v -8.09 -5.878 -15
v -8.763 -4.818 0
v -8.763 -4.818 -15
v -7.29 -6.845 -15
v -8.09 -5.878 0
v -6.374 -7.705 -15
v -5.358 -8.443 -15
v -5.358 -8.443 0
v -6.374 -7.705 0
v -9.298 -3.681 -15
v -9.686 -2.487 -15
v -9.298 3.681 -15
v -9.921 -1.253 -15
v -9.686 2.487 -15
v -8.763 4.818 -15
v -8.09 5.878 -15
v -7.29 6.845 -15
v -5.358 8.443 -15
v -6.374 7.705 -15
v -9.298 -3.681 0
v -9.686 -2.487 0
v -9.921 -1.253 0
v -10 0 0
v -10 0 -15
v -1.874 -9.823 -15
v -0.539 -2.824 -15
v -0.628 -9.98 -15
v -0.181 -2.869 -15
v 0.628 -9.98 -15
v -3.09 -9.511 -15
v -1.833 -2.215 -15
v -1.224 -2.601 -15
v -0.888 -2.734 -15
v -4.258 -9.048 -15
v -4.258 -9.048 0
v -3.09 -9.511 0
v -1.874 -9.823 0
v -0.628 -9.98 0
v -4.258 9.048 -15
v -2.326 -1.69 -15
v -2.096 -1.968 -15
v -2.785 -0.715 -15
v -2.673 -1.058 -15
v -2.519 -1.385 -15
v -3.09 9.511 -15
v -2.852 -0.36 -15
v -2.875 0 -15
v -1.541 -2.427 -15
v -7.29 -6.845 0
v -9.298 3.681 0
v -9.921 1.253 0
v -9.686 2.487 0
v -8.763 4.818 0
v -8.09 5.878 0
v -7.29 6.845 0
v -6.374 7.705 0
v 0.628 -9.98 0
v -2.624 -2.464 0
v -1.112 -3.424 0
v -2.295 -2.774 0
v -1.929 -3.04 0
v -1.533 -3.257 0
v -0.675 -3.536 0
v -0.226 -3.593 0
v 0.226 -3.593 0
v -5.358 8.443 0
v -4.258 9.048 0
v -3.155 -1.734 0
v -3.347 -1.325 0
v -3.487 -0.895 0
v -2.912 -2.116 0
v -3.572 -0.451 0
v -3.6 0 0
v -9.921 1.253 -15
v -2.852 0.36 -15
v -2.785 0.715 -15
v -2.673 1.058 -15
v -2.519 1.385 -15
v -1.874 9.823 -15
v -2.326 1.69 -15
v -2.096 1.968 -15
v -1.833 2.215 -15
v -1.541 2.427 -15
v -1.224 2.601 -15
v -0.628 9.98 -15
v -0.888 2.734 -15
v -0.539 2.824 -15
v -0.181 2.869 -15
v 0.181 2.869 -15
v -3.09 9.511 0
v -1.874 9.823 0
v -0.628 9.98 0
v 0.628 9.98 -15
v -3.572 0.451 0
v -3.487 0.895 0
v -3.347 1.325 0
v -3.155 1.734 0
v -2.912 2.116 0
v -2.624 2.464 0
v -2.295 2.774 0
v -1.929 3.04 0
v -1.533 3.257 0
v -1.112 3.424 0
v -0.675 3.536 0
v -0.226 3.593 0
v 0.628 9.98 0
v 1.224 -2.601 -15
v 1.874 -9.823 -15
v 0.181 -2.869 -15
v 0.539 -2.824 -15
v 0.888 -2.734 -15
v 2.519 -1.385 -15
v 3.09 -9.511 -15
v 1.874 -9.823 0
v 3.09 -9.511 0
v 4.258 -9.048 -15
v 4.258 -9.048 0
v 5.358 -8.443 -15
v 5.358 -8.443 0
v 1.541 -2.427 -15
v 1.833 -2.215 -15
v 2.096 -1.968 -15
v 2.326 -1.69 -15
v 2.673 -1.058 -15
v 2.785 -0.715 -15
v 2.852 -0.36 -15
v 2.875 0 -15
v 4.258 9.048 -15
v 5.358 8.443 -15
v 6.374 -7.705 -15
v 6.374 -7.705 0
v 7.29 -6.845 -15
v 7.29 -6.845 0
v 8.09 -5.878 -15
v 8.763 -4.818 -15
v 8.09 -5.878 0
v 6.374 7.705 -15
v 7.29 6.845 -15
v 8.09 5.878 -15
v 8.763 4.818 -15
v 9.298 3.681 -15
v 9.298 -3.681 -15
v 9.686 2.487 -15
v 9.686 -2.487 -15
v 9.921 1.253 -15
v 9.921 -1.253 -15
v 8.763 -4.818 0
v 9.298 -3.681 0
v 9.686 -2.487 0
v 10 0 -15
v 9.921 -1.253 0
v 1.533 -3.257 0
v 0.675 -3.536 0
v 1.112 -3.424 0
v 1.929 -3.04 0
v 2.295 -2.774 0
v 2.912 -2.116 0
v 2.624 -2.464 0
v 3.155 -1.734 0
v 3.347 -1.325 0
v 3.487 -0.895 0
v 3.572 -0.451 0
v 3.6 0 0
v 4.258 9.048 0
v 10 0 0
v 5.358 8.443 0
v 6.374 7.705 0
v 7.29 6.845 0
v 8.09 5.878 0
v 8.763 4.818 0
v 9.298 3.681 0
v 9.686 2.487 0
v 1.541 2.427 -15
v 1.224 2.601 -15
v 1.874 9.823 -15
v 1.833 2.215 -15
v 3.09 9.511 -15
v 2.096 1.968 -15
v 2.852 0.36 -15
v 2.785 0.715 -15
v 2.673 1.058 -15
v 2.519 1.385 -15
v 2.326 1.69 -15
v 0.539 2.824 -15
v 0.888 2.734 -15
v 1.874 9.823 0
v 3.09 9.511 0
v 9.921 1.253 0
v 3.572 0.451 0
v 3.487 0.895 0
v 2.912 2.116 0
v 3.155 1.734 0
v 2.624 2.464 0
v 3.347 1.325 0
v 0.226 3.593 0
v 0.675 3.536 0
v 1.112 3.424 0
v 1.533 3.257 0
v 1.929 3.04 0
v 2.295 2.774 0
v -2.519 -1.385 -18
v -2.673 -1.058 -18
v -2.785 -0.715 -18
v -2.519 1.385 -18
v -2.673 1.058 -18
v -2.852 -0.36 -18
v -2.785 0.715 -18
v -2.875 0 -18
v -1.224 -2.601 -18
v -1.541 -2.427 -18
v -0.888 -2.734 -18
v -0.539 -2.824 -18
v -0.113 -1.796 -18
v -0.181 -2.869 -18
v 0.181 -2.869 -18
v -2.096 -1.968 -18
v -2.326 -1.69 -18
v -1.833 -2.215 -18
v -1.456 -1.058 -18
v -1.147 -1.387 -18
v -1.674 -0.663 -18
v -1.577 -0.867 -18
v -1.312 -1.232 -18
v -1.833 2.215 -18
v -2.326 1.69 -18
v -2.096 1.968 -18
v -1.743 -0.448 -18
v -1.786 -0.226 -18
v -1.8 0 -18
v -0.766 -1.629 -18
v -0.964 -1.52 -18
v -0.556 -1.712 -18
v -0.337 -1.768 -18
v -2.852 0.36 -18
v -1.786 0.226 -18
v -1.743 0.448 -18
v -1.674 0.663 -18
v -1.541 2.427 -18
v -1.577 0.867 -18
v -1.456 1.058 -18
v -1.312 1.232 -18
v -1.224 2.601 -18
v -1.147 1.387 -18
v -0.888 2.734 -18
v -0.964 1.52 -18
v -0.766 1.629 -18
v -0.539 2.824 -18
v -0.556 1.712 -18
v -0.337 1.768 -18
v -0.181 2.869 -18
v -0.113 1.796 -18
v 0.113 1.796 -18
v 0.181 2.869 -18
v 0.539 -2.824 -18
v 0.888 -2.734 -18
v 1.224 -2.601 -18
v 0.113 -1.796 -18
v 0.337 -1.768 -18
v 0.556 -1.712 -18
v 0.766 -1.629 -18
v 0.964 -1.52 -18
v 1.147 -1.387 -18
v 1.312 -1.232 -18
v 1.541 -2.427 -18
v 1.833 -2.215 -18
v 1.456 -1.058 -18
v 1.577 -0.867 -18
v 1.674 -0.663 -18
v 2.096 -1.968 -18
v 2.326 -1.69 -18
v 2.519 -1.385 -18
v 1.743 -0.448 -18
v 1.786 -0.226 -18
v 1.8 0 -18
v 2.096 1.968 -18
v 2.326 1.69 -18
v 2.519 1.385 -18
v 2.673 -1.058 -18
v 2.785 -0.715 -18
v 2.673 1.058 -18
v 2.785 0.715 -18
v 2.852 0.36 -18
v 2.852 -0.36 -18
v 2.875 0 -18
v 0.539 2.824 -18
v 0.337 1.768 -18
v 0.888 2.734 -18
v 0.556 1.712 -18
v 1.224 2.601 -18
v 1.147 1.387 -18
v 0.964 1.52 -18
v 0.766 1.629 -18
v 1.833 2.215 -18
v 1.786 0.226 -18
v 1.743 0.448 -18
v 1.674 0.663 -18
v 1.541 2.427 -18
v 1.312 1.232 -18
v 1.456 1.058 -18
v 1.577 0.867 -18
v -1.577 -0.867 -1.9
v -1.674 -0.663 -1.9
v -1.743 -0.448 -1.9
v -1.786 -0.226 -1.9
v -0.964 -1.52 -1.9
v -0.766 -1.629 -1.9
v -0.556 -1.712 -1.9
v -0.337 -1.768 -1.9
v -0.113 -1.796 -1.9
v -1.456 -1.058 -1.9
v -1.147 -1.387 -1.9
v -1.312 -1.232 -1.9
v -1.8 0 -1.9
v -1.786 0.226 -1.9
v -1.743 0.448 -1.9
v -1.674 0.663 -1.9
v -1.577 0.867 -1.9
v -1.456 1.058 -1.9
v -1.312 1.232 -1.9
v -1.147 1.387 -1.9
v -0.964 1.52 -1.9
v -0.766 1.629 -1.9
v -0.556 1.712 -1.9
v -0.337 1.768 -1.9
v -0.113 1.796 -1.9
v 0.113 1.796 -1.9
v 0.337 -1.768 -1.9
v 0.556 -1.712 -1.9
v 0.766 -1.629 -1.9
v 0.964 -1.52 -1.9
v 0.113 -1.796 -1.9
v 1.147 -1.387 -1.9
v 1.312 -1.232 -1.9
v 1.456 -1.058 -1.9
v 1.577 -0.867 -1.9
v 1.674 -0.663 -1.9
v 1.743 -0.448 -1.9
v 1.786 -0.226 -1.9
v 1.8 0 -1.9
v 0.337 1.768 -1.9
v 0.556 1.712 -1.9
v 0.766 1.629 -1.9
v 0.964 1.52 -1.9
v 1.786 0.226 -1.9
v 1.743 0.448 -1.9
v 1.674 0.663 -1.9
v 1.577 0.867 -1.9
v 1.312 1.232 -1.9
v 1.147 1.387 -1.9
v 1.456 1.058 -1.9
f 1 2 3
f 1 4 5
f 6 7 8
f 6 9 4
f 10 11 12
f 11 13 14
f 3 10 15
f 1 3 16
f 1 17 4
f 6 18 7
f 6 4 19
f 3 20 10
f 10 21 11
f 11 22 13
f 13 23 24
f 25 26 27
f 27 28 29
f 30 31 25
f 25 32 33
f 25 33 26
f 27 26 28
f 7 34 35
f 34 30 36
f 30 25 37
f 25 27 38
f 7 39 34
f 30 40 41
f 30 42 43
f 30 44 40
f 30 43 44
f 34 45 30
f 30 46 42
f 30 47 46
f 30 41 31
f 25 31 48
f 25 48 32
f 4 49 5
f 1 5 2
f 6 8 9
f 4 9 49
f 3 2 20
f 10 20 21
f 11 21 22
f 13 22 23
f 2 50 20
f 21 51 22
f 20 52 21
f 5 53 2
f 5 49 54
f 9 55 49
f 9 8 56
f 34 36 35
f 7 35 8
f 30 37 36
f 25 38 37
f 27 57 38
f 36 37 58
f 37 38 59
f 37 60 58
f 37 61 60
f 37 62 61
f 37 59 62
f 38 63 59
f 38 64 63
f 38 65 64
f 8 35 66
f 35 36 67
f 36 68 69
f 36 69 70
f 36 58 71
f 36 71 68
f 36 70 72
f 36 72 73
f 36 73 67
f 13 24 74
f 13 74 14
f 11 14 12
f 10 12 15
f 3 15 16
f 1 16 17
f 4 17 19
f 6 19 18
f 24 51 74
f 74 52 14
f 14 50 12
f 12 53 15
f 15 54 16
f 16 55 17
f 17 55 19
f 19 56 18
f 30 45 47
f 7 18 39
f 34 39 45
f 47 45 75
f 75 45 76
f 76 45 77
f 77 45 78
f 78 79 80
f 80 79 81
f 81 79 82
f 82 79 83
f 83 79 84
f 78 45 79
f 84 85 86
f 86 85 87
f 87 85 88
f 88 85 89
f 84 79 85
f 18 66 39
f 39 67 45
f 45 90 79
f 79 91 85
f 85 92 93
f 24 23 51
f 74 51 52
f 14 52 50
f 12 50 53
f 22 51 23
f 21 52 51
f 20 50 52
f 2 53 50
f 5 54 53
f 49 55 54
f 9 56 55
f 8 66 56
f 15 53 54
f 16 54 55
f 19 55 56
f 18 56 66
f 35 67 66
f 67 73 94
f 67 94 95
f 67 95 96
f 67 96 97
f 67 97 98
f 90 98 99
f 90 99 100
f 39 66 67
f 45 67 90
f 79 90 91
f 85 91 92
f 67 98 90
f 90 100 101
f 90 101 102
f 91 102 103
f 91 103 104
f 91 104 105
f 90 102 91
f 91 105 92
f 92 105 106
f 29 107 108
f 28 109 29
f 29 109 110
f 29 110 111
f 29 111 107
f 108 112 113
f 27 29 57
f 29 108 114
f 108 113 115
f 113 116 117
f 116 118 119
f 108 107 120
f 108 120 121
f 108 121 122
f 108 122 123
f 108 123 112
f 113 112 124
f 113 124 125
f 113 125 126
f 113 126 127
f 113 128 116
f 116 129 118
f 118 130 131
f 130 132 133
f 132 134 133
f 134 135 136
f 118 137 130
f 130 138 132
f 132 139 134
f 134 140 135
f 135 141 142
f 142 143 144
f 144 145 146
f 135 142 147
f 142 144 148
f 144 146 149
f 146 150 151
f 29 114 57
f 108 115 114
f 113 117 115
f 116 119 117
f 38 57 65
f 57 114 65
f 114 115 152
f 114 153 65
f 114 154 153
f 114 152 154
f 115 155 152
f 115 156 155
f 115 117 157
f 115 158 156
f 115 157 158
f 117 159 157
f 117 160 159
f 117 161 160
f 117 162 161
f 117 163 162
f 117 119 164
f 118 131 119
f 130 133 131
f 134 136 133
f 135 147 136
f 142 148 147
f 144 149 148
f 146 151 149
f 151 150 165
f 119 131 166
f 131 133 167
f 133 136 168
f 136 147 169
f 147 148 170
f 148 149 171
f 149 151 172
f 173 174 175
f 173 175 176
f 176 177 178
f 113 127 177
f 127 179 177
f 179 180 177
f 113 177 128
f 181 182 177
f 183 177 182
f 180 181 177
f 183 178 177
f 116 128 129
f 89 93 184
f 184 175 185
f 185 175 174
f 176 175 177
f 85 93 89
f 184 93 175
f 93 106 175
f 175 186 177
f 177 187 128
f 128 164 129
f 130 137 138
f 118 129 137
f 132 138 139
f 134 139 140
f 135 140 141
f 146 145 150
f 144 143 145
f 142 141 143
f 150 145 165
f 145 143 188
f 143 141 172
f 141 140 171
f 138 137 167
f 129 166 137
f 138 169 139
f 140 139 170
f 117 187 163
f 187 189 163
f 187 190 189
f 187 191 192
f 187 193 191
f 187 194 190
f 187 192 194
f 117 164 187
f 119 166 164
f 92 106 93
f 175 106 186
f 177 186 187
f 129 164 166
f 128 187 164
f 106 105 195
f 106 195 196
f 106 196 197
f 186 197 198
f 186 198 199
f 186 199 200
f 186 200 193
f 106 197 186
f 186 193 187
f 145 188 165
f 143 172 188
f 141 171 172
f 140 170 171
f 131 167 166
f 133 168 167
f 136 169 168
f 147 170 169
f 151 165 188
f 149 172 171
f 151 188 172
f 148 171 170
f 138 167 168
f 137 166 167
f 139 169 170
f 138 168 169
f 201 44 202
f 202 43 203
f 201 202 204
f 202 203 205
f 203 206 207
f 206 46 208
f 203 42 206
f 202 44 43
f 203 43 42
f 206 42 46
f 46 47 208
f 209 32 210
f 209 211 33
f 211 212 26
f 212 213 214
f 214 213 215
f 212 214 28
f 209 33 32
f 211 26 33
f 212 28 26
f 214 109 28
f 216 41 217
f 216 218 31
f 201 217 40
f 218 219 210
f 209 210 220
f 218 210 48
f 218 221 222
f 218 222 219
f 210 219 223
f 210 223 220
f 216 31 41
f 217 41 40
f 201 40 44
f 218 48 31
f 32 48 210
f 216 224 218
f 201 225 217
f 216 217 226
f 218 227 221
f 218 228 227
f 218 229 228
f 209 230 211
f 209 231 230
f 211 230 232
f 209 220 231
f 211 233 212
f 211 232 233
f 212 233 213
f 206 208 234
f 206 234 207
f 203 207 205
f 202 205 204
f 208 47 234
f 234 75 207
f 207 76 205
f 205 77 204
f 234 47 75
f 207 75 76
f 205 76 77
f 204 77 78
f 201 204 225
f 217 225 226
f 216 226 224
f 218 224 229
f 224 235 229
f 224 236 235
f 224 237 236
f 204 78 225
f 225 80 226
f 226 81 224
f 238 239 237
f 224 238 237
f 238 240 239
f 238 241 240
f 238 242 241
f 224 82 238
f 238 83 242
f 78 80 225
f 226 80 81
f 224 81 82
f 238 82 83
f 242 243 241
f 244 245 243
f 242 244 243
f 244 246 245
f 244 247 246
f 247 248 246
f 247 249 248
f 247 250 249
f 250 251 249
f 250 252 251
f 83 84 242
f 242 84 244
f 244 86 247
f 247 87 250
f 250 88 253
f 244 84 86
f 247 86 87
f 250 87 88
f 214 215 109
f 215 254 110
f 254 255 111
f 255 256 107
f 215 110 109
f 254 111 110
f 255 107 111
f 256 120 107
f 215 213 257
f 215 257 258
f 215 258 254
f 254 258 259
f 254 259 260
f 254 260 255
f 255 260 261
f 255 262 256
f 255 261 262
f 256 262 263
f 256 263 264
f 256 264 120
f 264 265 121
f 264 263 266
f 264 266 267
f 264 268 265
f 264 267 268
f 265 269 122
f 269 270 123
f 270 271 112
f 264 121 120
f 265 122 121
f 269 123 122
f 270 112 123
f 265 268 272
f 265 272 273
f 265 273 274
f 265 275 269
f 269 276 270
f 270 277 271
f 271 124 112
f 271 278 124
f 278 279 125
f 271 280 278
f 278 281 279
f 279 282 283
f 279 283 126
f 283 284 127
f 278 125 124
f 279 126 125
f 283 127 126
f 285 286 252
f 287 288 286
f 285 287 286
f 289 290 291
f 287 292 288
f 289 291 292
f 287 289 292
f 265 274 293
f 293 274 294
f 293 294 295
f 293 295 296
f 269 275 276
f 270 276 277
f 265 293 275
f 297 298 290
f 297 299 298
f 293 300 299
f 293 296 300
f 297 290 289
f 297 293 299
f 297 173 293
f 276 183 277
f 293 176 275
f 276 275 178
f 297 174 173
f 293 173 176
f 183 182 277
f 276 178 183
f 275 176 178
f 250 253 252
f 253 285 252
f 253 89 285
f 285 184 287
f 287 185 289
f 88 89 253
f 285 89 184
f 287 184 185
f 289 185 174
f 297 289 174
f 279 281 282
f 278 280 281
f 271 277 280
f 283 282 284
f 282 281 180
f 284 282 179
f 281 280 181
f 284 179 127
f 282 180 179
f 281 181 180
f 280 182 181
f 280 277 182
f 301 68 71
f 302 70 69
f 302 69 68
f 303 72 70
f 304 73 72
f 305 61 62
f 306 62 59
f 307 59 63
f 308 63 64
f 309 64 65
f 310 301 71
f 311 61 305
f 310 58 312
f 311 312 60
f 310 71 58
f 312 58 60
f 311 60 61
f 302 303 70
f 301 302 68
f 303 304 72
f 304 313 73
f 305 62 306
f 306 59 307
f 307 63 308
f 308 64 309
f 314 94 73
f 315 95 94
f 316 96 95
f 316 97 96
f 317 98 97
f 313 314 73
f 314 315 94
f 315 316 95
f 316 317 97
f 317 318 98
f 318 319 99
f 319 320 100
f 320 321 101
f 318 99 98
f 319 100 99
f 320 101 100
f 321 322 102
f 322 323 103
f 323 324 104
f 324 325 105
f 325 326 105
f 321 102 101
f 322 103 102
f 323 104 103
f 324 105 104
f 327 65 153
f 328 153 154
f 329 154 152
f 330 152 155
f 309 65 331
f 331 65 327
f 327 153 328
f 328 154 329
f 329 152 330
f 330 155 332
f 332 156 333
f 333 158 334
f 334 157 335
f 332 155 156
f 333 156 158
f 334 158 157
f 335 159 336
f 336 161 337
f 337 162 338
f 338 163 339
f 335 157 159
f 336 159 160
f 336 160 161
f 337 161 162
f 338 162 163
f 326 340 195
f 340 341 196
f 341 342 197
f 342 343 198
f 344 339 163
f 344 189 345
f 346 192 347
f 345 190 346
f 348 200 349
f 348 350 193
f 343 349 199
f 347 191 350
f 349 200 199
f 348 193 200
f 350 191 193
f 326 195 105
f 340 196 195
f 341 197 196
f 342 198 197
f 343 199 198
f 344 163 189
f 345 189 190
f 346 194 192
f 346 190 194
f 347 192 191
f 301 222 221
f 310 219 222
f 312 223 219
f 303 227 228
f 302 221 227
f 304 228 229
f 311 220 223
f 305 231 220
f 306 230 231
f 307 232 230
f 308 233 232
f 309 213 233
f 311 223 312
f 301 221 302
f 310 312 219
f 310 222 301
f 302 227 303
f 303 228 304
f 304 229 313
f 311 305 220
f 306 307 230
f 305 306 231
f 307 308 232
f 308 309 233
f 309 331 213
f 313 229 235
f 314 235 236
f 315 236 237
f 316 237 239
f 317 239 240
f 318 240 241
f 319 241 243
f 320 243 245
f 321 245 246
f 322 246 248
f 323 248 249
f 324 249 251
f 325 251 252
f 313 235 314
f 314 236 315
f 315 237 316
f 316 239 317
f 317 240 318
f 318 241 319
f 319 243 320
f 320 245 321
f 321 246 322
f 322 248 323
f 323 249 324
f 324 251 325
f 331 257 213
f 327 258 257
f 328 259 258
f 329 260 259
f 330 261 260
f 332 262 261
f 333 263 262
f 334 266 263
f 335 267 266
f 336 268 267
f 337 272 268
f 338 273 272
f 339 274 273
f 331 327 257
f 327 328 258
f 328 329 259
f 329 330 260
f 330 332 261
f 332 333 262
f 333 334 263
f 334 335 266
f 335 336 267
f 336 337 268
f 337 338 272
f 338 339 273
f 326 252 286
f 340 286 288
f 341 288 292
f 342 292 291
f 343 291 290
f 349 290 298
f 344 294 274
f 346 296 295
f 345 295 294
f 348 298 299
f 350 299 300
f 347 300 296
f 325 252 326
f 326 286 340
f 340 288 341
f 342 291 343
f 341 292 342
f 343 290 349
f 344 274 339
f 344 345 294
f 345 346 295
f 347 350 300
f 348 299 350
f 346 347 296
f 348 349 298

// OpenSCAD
$fn = 50;


difference() {
	union() {
		translate(v = [0, 0, -15.0000000000]) {
			cylinder(h = 15, r = 10.0000000000);
		}
		#translate(v = [0, 0, -18.0000000000]) {
			cylinder(h = 18, r = 2.8750000000);
		}
	}
	union() {
		translate(v = [0, 0, 0]) {
			rotate(a = [0, 0, 0]) {
				difference() {
					union() {
						translate(v = [0, 0, -18.0000000000]) {
							cylinder(h = 18, r = 1.5000000000);
						}
						translate(v = [0, 0, -1.9000000000]) {
							cylinder(h = 1.9000000000, r1 = 1.8000000000, r2 = 3.6000000000);
						}
						translate(v = [0, 0, -18.0000000000]) {
							cylinder(h = 18, r = 1.8000000000);
						}
						translate(v = [0, 0, -18.0000000000]) {
							cylinder(h = 18, r = 1.5000000000);
						}
					}
					union();
				}
			}
		}
	}
}
